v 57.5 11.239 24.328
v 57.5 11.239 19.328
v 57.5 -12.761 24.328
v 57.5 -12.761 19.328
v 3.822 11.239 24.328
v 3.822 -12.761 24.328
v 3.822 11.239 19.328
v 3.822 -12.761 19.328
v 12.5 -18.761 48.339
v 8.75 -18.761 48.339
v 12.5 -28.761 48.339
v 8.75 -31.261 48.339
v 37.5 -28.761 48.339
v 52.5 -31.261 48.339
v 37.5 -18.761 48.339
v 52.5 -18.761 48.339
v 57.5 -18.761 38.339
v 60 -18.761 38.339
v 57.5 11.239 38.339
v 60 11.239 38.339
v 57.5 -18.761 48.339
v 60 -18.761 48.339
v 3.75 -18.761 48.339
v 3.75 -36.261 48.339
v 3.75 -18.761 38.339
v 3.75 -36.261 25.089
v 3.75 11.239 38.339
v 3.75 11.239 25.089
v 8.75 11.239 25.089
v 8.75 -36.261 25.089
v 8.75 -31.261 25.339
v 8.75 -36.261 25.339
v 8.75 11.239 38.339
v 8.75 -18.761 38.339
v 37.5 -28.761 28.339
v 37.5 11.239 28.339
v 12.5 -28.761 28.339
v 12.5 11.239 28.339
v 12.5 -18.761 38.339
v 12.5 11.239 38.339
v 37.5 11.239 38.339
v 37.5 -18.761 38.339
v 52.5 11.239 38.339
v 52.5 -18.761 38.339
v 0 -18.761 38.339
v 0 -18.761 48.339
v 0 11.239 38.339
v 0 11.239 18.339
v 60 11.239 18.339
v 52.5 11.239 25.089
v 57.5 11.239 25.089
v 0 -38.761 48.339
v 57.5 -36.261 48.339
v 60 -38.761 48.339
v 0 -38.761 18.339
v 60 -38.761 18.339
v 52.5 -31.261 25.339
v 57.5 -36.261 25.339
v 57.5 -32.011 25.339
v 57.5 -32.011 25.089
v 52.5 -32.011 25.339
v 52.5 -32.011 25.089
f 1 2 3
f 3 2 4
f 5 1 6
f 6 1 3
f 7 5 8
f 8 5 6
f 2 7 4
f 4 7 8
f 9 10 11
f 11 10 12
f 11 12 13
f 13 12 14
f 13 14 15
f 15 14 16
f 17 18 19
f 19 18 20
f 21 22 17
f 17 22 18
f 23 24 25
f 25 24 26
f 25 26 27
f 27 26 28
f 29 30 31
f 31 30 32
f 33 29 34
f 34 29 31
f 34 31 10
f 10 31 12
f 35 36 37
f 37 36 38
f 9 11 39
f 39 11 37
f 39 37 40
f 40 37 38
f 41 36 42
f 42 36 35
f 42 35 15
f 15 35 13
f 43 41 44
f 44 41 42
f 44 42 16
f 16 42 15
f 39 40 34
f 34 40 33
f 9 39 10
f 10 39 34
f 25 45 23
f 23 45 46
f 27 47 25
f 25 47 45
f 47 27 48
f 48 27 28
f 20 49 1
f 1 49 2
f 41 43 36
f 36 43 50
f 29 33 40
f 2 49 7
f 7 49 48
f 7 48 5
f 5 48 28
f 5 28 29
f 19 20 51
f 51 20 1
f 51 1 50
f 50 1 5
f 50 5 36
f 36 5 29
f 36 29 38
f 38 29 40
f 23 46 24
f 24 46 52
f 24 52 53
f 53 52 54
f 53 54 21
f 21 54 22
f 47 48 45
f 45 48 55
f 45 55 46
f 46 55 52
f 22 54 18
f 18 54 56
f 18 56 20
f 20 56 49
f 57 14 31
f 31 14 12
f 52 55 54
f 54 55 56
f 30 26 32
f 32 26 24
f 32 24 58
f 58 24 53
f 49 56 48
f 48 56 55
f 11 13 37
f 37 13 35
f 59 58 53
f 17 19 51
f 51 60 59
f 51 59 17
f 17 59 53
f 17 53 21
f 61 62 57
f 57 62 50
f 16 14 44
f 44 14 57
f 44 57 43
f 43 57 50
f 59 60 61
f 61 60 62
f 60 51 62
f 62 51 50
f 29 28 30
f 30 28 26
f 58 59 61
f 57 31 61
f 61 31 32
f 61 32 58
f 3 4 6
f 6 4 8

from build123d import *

# Parameters (mm, degrees)
BOSS_EXTRU_2_DEPTH       = 60
ESQUISSE2_W              = 5
ESQUISSE2_H              = 30
ESQUISSE2_H_2            = 20
ESQUISSE2_W_2            = 25
ENL_V_MAT_EXTRU_1_DEPTH  = 20
ESQUISSE4_W              = 60
ESQUISSE4_H              = 5
ENL_V_MAT_EXTRU_2_DEPTH  = 45
ESQUISSE5_W              = 56.25
ESQUISSE5_H              = 5
ESQUISSE5_W_2            = 3.75
ENL_V_MAT_EXTRU_4_DEPTH  = 27.5
ESQUISSE6_W              = 60
ESQUISSE6_H              = 2.5
BOSS_EXTRU_3_DEPTH       = 29.5
ESQUISSE7_W              = 3.75
ESQUISSE7_H              = 20
ESQUISSE7_W_2            = 13.75
BOSS_EXTRU_4_DEPTH       = 27.5
ESQUISSE8_W              = 3.75
ESQUISSE8_H              = 20
ESQUISSE8_W_2            = 13.75
BOSS_EXTRU_5_DEPTH       = 31.5
ESQUISSE10_W             = 42.5
ESQUISSE10_H             = 5
ENL_V_MAT_EXTRU_5_DEPTH  = 47.5
ESQUISSE11_W             = 5
ESQUISSE11_H             = 2.5
ESQUISSE11_W_2           = 3.75
ESQUISSE11_W_3           = 25
BOSS_EXTRU_6_DEPTH       = 20.5
ESQUISSE13_W             = 42.5
ESQUISSE13_H             = 5
ENL_V_MAT_EXTRU_7_DEPTH  = 27.5
ESQUISSE14_W             = 5
ESQUISSE14_H             = 10
ENL_V_MAT_EXTRU_8_DEPTH  = 40
ESQUISSE15_W             = 5
ESQUISSE15_H             = 20
BOSS_EXTRU_7_DEPTH       = 41
ESQUISSE16_W             = 5
ESQUISSE16_H             = 10
ENL_V_MAT_EXTRU_9_DEPTH  = 30
ESQUISSE17_W             = 5
ESQUISSE17_H             = 43.25
ENL_V_MAT_EXTRU_10_DEPTH = 23.25
ESQUISSE18_W             = 43.75
ESQUISSE18_H             = 0.75
BOSS_EXTRU_8_DEPTH       = 50
ESQUISSE19_W             = 48.75
ESQUISSE19_H             = 4.25
BOSS_EXTRU_9_DEPTH       = 50
ESQUISSE20_W             = 53.75
ESQUISSE20_H             = 5
ENL_V_MAT_EXTRU_11_DEPTH = 23
ESQUISSE21_W             = 53.677626311
ESQUISSE21_H             = 5
ENL_V_MAT_EXTRU_12_DEPTH = 48
ESQUISSE22_W             = 53.677626311
ESQUISSE22_H             = 5
BOSS_EXTRU_10_DEPTH      = 24


with BuildPart() as part:
    # Esquisse1 → Boss.-Extru.2 (new body)
    with BuildSketch(Plane(origin=(0, 0, 0), x_dir=(0, 0, -1), z_dir=(1, 0, 0))):
        Polygon((-38.339385634, 11.238718482), (-18.339385634, 11.238718482), (-18.339385634, -38.761281518), (-48.339385634, -38.761281518), (-48.339385634, -18.761281518), (-38.339385634, -18.761281518), align=None)
    extrude(amount=BOSS_EXTRU_2_DEPTH)

    # Esquisse2 → Enlèv. mat.-Extru.1 (cut)
    with BuildSketch(Plane.XY.offset(48.339385634)):
        with Locations((6.25, -3.761281518)):
            Rectangle(ESQUISSE2_W, ESQUISSE2_H)
        with Locations((6.25, -28.761281518)):
            Rectangle(ESQUISSE2_W, ESQUISSE2_H_2)
        with Locations((25, -3.761281518)):
            Rectangle(ESQUISSE2_W_2, ESQUISSE2_H)
        with Locations((25, -28.761281518)):
            Rectangle(ESQUISSE2_W_2, ESQUISSE2_H_2)
        with Locations((43.75, -3.761281518)):
            Rectangle(ESQUISSE2_W, ESQUISSE2_H)
        with Locations((43.75, -28.761281518)):
            Rectangle(ESQUISSE2_W, ESQUISSE2_H_2)
    extrude(amount=-ENL_V_MAT_EXTRU_1_DEPTH, mode=Mode.SUBTRACT)

    # Esquisse4 → Enlèv. mat.-Extru.2 (cut)
    with BuildSketch(Plane(origin=(0, 11.238718482, 0), x_dir=(1, 0, 0), z_dir=(0, 1, 0))):
        with Locations((30, -23.339385634)):
            Rectangle(ESQUISSE4_W, ESQUISSE4_H)
    extrude(amount=-ENL_V_MAT_EXTRU_2_DEPTH, mode=Mode.SUBTRACT)

    # Esquisse5 → Enlèv. mat.-Extru.4 (cut)
    with BuildSketch(Plane.XY.offset(48.339385634)):
        with Locations((31.875, -33.761281518)):
            Rectangle(ESQUISSE5_W, ESQUISSE5_H)
        with Locations((1.875, -33.761281518)):
            Rectangle(ESQUISSE5_W_2, ESQUISSE5_H)
    extrude(amount=-ENL_V_MAT_EXTRU_4_DEPTH, mode=Mode.SUBTRACT)

    # Esquisse6 → Boss.-Extru.3 (add)
    with BuildSketch(Plane.XY.offset(48.339385634)):
        with Locations((30, -37.511281518)):
            Rectangle(ESQUISSE6_W, ESQUISSE6_H)
    extrude(amount=-BOSS_EXTRU_3_DEPTH)

    # Esquisse7 → Boss.-Extru.4 (add)
    with BuildSketch(Plane.XY.offset(48.339385634)):
        with Locations((1.875, -28.761281518)):
            Rectangle(ESQUISSE7_W, ESQUISSE7_H)
        with Locations((10.625, -28.761281518)):
            Rectangle(ESQUISSE7_W, ESQUISSE7_H)
        with Locations((53.125, -28.761281518)):
            Rectangle(ESQUISSE7_W_2, ESQUISSE7_H)
        with Locations((39.375, -28.761281518)):
            Rectangle(ESQUISSE7_W, ESQUISSE7_H)
    extrude(amount=-BOSS_EXTRU_4_DEPTH)

    # Esquisse8 → Boss.-Extru.5 (add)
    with BuildSketch(Plane(origin=(0, 11.238718482, 0), x_dir=(1, 0, 0), z_dir=(0, 1, 0))):
        with Locations((1.875, -28.339385634)):
            Rectangle(ESQUISSE8_W, ESQUISSE8_H)
        with Locations((10.625, -28.339385634)):
            Rectangle(ESQUISSE8_W, ESQUISSE8_H)
        with Locations((53.125, -28.339385634)):
            Rectangle(ESQUISSE8_W_2, ESQUISSE8_H)
        with Locations((39.375, -28.339385634)):
            Rectangle(ESQUISSE8_W, ESQUISSE8_H)
    extrude(amount=-BOSS_EXTRU_5_DEPTH)

    # Esquisse10 → Enlèv. mat.-Extru.5 (cut)
    with BuildSketch(Plane(origin=(0, 11.238718482, 0), x_dir=(1, 0, 0), z_dir=(0, 1, 0))):
        with Locations((25, -23.339385634)):
            Rectangle(ESQUISSE10_W, ESQUISSE10_H)
    extrude(amount=-ENL_V_MAT_EXTRU_5_DEPTH, mode=Mode.SUBTRACT)

    # Esquisse11 → Boss.-Extru.6 (add)
    with BuildSketch(Plane.XY.offset(48.339385634)):
        with Locations((43.75, -30.011281518)):
            Rectangle(ESQUISSE11_W, ESQUISSE11_H)
        with Locations((39.375, -30.011281518)):
            Rectangle(ESQUISSE11_W_2, ESQUISSE11_H)
        with Locations((25, -30.011281518)):
            Rectangle(ESQUISSE11_W_3, ESQUISSE11_H)
        with Locations((6.25, -30.011281518)):
            Rectangle(ESQUISSE11_W, ESQUISSE11_H)
        with Locations((10.625, -30.011281518)):
            Rectangle(ESQUISSE11_W_2, ESQUISSE11_H)
    extrude(amount=-BOSS_EXTRU_6_DEPTH)

    # Esquisse13 → Enlèv. mat.-Extru.7 (cut)
    with BuildSketch(Plane.XY.offset(48.339385634)):
        with Locations((25, -33.761281518)):
            Rectangle(ESQUISSE13_W, ESQUISSE13_H)
    extrude(amount=-ENL_V_MAT_EXTRU_7_DEPTH, mode=Mode.SUBTRACT)

    # Esquisse14 → Enlèv. mat.-Extru.8 (cut)
    with BuildSketch(Plane(origin=(0, 11.238718482, 0), x_dir=(1, 0, 0), z_dir=(0, 1, 0))):
        with Locations((55, -33.339385634)):
            Rectangle(ESQUISSE14_W, ESQUISSE14_H)
        with Locations((55, -43.339385634)):
            Rectangle(ESQUISSE14_W, ESQUISSE14_H)
    extrude(amount=-ENL_V_MAT_EXTRU_8_DEPTH, mode=Mode.SUBTRACT)

    # Esquisse15 → Boss.-Extru.7 (add)
    with BuildSketch(Plane(origin=(0, 11.238718482, 0), x_dir=(1, 0, 0), z_dir=(0, 1, 0))):
        with Locations((43.75, -38.339385634)):
            Rectangle(ESQUISSE15_W, ESQUISSE15_H)
    extrude(amount=-BOSS_EXTRU_7_DEPTH)

    # Esquisse16 → Enlèv. mat.-Extru.9 (cut)
    with BuildSketch(Plane(origin=(0, 11.238718482, 0), x_dir=(1, 0, 0), z_dir=(0, 1, 0))):
        with Locations((43.75, -43.339385634)):
            Rectangle(ESQUISSE16_W, ESQUISSE16_H)
    extrude(amount=-ENL_V_MAT_EXTRU_9_DEPTH, mode=Mode.SUBTRACT)

    # Esquisse17 → Enlèv. mat.-Extru.10 (cut)
    with BuildSketch(Plane.XY.offset(48.339385634)):
        with Locations((55, -10.386281518)):
            Rectangle(ESQUISSE17_W, ESQUISSE17_H)
        with Locations((6.25, -10.386281518)):
            Rectangle(ESQUISSE17_W, ESQUISSE17_H)
    extrude(amount=-ENL_V_MAT_EXTRU_10_DEPTH, mode=Mode.SUBTRACT)

    # Esquisse18 → Boss.-Extru.8 (add)
    with BuildSketch(Plane(origin=(0, 11.238718482, 0), x_dir=(1, 0, 0), z_dir=(0, 1, 0))):
        with Locations((30.625, -25.464385634)):
            Rectangle(ESQUISSE18_W, ESQUISSE18_H)
    extrude(amount=-BOSS_EXTRU_8_DEPTH)

    # Esquisse19 → Boss.-Extru.9 (add)
    with BuildSketch(Plane(origin=(0, 11.238718482, 0), x_dir=(1, 0, 0), z_dir=(0, 1, 0))):
        with Locations((28.125, -22.964385634)):
            Rectangle(ESQUISSE19_W, ESQUISSE19_H)
    extrude(amount=-BOSS_EXTRU_9_DEPTH)

    # Esquisse20 → Enlèv. mat.-Extru.11 (cut)
    with BuildSketch(Plane.XY.offset(48.339385634)):
        with Locations((30.625, -33.761281518)):
            Rectangle(ESQUISSE20_W, ESQUISSE20_H)
    extrude(amount=-ENL_V_MAT_EXTRU_11_DEPTH, mode=Mode.SUBTRACT)

    # Esquisse21 → Enlèv. mat.-Extru.12 (cut)
    with BuildSketch(Plane(origin=(0, 11.238718482, 0), x_dir=(1, 0, 0), z_dir=(0, 1, 0))):
        with Locations((30.661186845, -21.828072333)):
            Rectangle(ESQUISSE21_W, ESQUISSE21_H)
    extrude(amount=-ENL_V_MAT_EXTRU_12_DEPTH, mode=Mode.SUBTRACT)

    # Esquisse22 → Boss.-Extru.10 (add)
    with BuildSketch(Plane(origin=(0, -36.761281518, 0), x_dir=(1, 0, 0), z_dir=(0, 1, 0))):
        with Locations((30.661186845, -21.828072333)):
            Rectangle(ESQUISSE22_W, ESQUISSE22_H)
    extrude(amount=BOSS_EXTRU_10_DEPTH)


solid = part.part
